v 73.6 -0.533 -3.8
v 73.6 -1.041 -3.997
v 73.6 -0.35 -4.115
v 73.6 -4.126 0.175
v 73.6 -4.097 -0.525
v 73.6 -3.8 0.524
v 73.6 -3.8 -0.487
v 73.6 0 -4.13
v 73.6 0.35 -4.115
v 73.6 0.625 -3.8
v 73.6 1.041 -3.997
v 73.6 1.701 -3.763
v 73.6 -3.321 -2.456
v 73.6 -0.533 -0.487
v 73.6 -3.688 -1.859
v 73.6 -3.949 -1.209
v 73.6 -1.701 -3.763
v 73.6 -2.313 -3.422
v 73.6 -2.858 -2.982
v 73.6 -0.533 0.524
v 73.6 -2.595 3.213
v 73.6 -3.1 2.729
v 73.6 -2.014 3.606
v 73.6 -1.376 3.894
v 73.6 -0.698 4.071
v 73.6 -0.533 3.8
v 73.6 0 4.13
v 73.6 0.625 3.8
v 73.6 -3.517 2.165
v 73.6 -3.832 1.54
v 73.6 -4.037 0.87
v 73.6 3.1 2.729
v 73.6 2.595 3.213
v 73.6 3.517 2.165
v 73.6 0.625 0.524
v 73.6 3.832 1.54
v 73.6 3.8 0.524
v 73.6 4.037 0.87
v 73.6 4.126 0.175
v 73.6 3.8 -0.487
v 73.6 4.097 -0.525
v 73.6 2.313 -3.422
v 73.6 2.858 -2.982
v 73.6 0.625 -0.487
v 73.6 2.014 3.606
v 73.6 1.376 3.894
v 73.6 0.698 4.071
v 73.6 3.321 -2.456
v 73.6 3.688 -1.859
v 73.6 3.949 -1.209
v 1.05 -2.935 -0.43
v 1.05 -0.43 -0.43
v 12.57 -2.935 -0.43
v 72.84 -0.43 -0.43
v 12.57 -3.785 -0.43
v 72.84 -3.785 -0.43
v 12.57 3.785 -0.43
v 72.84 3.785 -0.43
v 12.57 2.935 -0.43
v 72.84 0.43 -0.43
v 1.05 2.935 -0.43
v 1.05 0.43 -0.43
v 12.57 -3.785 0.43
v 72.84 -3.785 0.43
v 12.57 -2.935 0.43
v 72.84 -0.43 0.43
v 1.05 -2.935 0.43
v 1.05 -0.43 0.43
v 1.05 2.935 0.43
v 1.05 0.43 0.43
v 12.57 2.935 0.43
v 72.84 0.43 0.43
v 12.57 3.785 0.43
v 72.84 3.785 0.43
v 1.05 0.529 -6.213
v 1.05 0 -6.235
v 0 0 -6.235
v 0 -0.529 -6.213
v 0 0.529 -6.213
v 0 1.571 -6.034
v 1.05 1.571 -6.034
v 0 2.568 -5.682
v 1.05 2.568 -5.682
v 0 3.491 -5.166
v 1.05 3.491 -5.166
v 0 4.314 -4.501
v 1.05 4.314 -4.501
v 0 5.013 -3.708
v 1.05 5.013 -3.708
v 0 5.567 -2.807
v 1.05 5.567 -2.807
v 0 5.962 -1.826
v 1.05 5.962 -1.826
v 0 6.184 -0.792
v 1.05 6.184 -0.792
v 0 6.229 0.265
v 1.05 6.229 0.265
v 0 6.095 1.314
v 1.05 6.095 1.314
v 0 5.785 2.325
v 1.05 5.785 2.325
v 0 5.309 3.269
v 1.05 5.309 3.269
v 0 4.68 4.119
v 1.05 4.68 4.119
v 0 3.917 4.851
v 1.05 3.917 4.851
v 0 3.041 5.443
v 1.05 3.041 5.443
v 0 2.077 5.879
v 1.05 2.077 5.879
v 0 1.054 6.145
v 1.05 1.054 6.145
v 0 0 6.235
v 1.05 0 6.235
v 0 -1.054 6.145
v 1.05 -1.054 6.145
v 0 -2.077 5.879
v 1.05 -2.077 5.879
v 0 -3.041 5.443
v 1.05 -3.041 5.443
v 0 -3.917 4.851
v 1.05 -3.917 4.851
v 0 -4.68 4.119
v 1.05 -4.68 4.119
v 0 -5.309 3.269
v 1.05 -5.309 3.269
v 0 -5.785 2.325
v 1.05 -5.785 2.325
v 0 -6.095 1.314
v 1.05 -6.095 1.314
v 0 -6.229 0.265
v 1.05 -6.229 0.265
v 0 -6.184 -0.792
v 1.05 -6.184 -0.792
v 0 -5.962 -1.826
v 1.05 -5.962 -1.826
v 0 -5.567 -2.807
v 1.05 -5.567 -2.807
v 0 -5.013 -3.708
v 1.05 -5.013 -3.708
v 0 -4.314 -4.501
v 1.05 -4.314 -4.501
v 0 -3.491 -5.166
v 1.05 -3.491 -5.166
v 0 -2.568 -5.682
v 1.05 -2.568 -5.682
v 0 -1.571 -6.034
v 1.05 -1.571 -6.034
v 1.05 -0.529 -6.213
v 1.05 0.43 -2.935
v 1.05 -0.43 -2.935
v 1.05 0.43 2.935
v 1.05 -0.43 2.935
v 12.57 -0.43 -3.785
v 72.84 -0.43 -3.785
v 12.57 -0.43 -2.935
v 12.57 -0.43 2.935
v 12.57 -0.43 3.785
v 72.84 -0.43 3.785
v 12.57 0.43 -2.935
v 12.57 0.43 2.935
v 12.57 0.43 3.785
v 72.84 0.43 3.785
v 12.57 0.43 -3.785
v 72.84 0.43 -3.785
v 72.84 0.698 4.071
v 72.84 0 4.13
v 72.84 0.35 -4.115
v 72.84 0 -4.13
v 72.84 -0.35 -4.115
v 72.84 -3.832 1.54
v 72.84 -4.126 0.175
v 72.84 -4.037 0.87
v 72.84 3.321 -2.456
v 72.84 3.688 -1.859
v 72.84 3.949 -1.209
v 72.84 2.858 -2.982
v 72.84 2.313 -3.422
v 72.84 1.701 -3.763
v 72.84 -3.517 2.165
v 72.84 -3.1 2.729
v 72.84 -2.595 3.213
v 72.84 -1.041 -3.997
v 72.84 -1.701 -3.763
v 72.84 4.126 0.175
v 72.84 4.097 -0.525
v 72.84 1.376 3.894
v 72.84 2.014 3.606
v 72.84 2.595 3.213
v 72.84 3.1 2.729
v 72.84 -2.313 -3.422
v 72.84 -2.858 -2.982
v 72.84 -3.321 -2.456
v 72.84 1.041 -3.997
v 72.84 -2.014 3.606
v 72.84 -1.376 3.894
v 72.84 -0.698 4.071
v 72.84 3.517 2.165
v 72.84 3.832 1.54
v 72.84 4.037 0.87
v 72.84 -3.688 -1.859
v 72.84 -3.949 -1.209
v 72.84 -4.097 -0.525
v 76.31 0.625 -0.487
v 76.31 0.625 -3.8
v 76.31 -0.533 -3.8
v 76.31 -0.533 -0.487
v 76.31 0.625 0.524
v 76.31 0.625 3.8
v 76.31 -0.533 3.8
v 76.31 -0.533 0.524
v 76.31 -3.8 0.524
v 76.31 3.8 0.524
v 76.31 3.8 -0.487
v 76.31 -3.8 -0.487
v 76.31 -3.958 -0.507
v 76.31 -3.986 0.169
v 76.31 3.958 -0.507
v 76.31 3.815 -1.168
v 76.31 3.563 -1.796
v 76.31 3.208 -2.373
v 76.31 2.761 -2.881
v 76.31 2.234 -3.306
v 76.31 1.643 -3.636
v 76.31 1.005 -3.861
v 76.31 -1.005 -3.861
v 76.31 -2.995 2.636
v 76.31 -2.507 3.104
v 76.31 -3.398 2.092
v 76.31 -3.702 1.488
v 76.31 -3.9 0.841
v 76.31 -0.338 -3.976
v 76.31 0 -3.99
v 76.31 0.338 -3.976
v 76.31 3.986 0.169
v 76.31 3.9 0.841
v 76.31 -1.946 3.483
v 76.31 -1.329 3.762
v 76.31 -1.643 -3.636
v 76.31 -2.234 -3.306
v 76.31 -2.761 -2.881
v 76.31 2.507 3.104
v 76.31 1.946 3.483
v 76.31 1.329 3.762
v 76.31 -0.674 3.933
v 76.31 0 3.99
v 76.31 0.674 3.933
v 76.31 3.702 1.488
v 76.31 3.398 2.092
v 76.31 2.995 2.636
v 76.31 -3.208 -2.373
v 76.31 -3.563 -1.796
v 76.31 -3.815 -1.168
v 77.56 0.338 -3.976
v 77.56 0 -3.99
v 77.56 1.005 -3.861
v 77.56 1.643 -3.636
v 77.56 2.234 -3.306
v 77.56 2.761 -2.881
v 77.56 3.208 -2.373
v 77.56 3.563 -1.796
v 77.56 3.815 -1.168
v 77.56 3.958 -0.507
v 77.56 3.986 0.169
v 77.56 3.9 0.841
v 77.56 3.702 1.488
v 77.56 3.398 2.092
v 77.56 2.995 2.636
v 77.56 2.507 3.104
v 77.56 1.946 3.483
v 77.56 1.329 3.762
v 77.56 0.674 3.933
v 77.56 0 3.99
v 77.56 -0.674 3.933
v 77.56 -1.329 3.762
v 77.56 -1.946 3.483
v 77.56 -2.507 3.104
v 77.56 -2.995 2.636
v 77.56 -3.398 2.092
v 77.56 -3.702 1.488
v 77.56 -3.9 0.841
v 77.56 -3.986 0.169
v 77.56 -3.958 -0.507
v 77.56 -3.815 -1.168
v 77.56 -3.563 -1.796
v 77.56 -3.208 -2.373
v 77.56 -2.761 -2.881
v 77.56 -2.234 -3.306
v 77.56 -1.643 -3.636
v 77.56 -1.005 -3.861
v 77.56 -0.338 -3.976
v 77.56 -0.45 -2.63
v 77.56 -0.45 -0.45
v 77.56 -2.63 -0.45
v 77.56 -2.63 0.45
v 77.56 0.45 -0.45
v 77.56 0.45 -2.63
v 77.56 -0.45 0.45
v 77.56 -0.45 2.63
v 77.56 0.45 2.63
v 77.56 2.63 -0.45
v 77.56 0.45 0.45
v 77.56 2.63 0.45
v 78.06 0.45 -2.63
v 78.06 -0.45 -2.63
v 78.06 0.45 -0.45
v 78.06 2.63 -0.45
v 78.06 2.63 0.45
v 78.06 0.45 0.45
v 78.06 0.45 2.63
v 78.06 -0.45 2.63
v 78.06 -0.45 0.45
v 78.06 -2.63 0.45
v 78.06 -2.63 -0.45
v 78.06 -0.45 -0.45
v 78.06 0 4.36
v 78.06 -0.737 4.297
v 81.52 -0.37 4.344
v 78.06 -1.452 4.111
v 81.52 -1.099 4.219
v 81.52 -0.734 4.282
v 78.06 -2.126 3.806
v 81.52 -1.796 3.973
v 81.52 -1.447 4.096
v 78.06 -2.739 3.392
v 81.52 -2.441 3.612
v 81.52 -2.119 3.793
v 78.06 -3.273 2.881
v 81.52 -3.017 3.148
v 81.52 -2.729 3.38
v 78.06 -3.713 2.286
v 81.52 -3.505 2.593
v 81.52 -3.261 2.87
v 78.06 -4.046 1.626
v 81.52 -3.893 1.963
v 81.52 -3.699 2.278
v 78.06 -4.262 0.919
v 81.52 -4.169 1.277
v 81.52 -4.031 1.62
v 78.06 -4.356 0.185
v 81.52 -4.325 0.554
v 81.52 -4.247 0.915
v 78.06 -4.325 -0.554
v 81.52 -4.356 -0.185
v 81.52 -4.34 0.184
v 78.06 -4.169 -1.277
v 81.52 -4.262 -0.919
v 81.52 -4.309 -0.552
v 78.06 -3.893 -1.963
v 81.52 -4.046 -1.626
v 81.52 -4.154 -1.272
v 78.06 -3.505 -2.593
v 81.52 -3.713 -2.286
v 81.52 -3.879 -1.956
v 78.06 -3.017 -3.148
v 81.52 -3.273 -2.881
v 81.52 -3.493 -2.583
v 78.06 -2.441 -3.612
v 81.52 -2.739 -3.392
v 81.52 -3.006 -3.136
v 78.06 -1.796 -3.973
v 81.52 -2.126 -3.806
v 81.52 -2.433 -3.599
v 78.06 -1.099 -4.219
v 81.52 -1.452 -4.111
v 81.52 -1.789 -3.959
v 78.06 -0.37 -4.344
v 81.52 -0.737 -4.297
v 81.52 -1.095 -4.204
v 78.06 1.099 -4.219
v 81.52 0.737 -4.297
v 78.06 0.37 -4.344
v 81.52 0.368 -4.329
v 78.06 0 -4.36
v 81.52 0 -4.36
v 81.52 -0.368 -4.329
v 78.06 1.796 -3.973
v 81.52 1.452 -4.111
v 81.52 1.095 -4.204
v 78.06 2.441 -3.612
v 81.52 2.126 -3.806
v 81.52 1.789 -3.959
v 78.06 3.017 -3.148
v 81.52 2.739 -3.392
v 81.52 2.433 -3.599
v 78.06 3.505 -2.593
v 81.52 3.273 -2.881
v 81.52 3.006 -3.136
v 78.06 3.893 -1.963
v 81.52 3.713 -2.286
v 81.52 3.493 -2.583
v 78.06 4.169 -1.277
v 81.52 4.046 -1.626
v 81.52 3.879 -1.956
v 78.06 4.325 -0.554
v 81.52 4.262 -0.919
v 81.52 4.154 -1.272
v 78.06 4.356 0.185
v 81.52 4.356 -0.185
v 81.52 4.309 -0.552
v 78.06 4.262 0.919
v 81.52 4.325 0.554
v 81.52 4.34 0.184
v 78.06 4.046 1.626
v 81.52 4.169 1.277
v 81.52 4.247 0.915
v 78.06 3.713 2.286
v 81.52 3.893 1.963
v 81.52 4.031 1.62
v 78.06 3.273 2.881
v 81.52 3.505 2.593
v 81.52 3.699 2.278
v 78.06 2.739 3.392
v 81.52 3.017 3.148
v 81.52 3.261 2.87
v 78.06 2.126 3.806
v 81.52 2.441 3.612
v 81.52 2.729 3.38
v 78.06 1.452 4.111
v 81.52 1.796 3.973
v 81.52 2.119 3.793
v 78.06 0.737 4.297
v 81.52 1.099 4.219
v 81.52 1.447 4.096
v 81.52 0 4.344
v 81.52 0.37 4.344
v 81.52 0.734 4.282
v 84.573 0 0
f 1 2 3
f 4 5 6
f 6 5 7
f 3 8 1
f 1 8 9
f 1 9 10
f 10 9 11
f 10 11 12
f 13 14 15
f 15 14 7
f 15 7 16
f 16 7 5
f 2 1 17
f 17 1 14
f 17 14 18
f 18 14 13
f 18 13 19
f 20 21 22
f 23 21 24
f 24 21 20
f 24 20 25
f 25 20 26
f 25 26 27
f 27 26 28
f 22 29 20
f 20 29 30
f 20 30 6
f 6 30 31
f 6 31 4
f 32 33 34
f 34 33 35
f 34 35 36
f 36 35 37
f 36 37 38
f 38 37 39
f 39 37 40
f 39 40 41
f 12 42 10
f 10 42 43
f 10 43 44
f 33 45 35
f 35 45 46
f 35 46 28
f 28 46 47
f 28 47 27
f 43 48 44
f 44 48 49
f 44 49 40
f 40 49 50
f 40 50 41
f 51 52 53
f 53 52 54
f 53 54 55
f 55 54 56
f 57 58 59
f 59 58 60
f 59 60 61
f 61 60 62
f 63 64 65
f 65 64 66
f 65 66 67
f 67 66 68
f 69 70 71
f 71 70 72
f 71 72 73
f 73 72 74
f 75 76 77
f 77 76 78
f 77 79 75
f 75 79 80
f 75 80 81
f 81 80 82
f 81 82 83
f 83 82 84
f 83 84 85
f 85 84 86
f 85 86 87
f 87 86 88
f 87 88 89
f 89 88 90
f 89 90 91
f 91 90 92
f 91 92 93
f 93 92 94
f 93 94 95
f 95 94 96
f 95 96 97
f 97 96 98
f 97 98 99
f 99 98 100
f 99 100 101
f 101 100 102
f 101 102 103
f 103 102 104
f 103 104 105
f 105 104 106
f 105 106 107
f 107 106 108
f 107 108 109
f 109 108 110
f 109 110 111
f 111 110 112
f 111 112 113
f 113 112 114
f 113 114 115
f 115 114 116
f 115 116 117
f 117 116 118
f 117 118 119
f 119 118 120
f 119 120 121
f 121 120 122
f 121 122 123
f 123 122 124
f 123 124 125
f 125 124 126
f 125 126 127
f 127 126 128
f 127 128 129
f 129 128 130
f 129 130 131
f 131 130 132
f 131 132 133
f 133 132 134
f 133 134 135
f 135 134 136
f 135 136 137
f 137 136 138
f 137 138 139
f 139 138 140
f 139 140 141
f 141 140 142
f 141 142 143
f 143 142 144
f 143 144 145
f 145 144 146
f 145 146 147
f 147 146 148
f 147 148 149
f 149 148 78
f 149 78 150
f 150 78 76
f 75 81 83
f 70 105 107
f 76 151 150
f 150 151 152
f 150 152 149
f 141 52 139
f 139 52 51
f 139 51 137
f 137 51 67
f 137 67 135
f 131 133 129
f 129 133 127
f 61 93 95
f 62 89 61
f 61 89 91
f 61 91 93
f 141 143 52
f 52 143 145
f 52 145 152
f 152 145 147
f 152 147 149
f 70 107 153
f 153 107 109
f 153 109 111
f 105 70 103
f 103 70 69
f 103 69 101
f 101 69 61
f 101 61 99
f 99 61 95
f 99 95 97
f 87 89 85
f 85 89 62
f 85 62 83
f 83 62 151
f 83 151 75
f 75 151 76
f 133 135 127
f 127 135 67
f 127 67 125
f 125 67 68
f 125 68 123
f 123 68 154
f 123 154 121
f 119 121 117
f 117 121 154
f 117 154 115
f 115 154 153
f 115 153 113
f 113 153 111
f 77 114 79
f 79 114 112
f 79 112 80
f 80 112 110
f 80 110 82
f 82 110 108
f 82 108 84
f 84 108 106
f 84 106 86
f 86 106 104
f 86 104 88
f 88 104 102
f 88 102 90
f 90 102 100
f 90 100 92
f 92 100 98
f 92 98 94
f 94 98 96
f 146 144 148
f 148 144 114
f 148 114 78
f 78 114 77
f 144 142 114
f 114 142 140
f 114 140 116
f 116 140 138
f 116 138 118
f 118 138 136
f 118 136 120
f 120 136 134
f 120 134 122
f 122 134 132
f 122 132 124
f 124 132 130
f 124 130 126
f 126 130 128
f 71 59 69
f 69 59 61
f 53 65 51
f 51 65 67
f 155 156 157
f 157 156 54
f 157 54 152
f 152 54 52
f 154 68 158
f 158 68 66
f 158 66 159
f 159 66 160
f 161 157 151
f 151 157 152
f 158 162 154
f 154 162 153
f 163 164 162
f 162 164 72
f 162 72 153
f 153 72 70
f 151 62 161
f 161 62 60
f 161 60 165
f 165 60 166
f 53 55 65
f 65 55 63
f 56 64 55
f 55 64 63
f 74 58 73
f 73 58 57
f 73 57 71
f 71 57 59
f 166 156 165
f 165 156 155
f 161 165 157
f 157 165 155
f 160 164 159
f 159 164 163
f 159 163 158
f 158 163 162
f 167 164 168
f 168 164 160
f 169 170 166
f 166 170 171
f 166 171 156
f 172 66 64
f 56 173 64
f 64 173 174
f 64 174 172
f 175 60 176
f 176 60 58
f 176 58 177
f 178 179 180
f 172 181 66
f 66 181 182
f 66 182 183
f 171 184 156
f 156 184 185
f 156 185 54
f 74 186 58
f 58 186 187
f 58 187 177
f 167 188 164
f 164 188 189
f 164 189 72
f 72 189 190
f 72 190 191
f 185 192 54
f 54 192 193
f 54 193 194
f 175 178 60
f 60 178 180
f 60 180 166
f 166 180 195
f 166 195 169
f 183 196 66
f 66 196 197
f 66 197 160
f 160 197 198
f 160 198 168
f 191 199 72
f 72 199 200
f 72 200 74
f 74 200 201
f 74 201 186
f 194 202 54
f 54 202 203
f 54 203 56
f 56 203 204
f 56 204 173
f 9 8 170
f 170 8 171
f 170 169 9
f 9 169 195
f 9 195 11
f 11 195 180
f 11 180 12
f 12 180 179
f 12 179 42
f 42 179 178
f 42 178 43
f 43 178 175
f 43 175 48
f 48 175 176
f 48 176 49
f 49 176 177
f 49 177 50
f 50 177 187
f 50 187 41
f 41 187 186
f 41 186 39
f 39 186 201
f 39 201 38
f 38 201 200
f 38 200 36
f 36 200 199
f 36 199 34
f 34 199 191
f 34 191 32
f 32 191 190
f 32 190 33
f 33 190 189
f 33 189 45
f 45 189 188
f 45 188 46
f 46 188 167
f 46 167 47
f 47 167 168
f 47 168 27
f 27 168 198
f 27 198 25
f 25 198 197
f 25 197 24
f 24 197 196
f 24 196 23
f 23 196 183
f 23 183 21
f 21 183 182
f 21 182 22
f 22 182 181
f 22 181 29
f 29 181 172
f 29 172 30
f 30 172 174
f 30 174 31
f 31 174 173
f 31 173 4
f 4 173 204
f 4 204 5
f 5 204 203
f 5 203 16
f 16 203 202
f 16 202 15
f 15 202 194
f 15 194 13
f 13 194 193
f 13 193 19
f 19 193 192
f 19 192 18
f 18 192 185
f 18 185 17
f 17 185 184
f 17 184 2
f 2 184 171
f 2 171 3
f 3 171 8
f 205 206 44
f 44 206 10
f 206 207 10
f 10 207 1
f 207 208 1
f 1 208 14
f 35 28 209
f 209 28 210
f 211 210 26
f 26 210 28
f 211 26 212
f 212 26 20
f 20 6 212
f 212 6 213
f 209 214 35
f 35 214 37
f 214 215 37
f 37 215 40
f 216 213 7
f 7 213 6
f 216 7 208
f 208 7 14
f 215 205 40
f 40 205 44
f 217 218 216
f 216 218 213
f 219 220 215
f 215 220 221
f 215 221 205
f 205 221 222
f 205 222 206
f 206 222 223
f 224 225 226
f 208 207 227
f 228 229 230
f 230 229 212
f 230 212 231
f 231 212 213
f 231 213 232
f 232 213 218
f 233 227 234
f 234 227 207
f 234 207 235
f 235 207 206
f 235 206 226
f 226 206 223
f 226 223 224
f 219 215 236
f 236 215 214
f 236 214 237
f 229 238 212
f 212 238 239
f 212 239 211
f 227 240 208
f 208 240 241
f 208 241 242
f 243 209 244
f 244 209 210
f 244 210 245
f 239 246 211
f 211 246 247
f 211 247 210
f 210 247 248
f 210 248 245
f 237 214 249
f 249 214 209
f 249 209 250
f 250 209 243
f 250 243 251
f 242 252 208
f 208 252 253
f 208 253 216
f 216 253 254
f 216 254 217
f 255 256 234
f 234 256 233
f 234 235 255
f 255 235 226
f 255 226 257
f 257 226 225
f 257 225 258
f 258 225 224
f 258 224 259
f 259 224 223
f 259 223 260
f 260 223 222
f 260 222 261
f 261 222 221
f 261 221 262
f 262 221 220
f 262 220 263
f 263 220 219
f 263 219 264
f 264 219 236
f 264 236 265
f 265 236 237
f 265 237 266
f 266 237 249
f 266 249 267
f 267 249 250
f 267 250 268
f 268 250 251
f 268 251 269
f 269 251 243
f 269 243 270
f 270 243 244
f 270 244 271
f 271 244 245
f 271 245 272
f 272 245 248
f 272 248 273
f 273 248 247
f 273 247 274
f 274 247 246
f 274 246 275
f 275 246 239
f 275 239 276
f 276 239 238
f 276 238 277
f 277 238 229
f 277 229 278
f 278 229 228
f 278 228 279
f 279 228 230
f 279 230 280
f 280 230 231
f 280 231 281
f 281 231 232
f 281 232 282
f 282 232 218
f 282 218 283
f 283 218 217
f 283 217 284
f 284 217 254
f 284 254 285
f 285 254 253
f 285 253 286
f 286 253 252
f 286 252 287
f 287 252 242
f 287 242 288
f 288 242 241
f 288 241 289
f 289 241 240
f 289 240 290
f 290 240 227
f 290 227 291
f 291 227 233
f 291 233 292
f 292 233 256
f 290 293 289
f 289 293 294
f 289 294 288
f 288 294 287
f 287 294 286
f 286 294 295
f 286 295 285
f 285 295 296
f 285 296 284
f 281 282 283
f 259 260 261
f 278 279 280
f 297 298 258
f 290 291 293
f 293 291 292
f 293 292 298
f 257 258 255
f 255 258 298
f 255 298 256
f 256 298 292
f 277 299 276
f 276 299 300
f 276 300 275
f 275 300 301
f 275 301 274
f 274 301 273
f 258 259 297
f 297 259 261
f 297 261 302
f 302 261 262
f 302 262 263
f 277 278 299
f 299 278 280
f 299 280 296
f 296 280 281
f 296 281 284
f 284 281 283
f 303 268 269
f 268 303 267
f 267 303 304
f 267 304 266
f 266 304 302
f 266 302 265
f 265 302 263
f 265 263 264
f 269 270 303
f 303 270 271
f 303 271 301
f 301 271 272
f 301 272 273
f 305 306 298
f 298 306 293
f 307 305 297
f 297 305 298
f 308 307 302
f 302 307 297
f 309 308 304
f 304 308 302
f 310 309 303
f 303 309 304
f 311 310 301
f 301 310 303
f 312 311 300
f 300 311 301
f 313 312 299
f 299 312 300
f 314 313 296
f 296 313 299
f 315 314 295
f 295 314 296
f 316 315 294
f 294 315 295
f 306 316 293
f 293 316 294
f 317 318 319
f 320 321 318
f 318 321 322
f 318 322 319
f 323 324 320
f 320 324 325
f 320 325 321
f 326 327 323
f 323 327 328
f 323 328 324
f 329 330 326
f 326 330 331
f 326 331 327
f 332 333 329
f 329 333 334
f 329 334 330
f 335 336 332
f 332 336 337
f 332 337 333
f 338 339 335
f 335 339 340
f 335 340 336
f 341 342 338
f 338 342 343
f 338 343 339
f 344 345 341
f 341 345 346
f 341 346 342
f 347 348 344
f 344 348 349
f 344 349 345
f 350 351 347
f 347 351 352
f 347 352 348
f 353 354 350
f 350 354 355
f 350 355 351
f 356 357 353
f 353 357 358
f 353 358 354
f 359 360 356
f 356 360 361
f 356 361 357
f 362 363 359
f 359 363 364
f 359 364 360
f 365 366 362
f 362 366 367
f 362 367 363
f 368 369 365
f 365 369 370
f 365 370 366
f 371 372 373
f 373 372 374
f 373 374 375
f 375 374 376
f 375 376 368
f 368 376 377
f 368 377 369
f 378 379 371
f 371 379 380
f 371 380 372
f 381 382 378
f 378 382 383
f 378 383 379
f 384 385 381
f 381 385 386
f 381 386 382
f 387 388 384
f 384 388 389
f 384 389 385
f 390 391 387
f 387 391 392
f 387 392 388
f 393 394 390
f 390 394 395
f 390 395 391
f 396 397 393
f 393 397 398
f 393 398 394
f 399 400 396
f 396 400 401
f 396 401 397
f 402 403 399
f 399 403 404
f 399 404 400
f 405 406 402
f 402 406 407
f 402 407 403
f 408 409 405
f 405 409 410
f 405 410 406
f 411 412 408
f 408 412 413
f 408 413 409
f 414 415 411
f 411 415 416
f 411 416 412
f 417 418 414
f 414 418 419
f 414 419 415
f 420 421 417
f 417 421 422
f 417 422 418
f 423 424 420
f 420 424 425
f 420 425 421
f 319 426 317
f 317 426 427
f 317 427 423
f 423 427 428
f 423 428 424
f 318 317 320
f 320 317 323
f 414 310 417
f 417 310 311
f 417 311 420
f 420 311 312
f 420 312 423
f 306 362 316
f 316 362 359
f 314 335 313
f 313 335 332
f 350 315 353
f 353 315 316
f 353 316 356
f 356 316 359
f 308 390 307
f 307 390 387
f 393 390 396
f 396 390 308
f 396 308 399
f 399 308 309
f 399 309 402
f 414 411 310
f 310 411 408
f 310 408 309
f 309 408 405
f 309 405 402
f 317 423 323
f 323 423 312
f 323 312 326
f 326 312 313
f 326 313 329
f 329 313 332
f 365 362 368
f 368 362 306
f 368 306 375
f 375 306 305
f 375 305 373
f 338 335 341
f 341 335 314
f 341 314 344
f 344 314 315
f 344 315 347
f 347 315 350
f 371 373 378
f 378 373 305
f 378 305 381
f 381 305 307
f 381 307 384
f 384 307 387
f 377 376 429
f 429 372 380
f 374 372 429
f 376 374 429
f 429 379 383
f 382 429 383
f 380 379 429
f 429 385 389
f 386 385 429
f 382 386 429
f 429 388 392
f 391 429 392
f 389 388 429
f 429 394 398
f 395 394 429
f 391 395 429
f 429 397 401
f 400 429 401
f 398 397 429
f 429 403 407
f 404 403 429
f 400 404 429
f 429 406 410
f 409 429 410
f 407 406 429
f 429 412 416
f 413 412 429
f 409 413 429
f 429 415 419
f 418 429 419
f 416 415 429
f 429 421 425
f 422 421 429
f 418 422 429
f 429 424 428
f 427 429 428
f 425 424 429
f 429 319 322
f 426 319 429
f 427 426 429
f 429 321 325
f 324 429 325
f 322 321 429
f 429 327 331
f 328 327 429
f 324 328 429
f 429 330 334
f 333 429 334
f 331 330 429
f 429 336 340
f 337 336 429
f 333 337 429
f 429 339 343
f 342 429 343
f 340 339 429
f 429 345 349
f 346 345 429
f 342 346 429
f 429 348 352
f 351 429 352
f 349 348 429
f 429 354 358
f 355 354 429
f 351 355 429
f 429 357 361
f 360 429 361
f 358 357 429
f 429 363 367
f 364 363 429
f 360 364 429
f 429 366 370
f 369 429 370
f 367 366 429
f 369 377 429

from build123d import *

# Parameters (mm, degrees)
SKETCH1_R            = 6.235
BOSS_EXTRUDE1_DEPTH  = 1.05
SKETCH2_W            = 5.87
SKETCH2_H            = 0.86
SKETCH2_W_2          = 0.86
SKETCH2_H_2          = 5.87
BOSS_EXTRUDE5_DEPTH  = 11.52
SKETCH10_W           = 0.86
SKETCH10_H           = 7.57
BOSS_EXTRUDE6_DEPTH  = 60.27
SKETCH11_W           = 7.57
SKETCH11_H           = 0.86
BOSS_EXTRUDE8_DEPTH  = 60.27
SKETCH15_R           = 4.13
BOSS_EXTRUDE9_DEPTH  = 0.76
SKETCH16_W           = 1.010303068
SKETCH16_H           = 7.6
SKETCH16_W_2         = 7.6
SKETCH16_H_2         = 1.157256242
BOSS_EXTRUDE10_DEPTH = 2.71
SKETCH17_R           = 3.99
BOSS_EXTRUDE11_DEPTH = 1.25
SKETCH18_W           = 2.18
SKETCH18_H           = 0.9
SKETCH18_W_2         = 0.9
SKETCH18_H_2         = 2.18
BOSS_EXTRUDE13_DEPTH = 0.5
SKETCH19_R           = 4.36
BOSS_EXTRUDE14_DEPTH = 3.46


with BuildPart() as part:
    # Sketch1 → Boss-Extrude1 (new body)
    with BuildSketch(Plane(origin=(0, 0, 0), x_dir=(0, 0, -1), z_dir=(1, 0, 0))):
        Circle(SKETCH1_R)
    extrude(amount=BOSS_EXTRUDE1_DEPTH)

    # Sketch2 → Boss-Extrude5 (add)
    with BuildSketch(Plane(origin=(1.05, 0, 0), x_dir=(0, 0, -1), z_dir=(1, 0, 0))):
        Rectangle(SKETCH2_W, SKETCH2_H)
        Rectangle(SKETCH2_W_2, SKETCH2_H_2)
    extrude(amount=BOSS_EXTRUDE5_DEPTH)

    # Sketch10 → Boss-Extrude6 (add)
    with BuildSketch(Plane(origin=(12.57, 0, 0), x_dir=(0, 0, -1), z_dir=(1, 0, 0))):
        Rectangle(SKETCH10_W, SKETCH10_H)
    extrude(amount=BOSS_EXTRUDE6_DEPTH)

    # Sketch11 → Boss-Extrude8 (add)
    with BuildSketch(Plane(origin=(12.57, 0, 0), x_dir=(0, 0, -1), z_dir=(1, 0, 0))):
        Rectangle(SKETCH11_W, SKETCH11_H)
    extrude(amount=BOSS_EXTRUDE8_DEPTH)

    # Sketch15 → Boss-Extrude9 (add)
    with BuildSketch(Plane(origin=(72.84, 0, 0), x_dir=(0, 0, -1), z_dir=(1, 0, 0))):
        Circle(SKETCH15_R)
    extrude(amount=BOSS_EXTRUDE9_DEPTH)

    # Sketch16 → Boss-Extrude10 (add)
    with BuildSketch(Plane(origin=(73.6, 0, 0), x_dir=(0, 0, -1), z_dir=(1, 0, 0))):
        with Locations((-0.018369147, 0)):
            Rectangle(SKETCH16_W, SKETCH16_H)
        with Locations((0, 0.045922867)):
            Rectangle(SKETCH16_W_2, SKETCH16_H_2)
    extrude(amount=BOSS_EXTRUDE10_DEPTH)

    # Sketch17 → Boss-Extrude11 (add)
    with BuildSketch(Plane(origin=(76.31, 0, 0), x_dir=(0, 0, -1), z_dir=(1, 0, 0))):
        Circle(SKETCH17_R)
    extrude(amount=BOSS_EXTRUDE11_DEPTH)

    # Sketch18 → Boss-Extrude13 (add)
    with BuildSketch(Plane(origin=(77.56, 0, 0), x_dir=(0, 0, -1), z_dir=(1, 0, 0))):
        with Locations((1.54, 0)):
            Rectangle(SKETCH18_W, SKETCH18_H)
        with Locations((0, 1.54)):
            Rectangle(SKETCH18_W_2, SKETCH18_H_2)
        with Locations((-1.54, 0)):
            Rectangle(SKETCH18_W, SKETCH18_H)
        Rectangle(SKETCH18_W_2, SKETCH18_H)
        with Locations((0, -1.54)):
            Rectangle(SKETCH18_W_2, SKETCH18_H_2)
    extrude(amount=BOSS_EXTRUDE13_DEPTH)

    # Sketch19 → Boss-Extrude14 (add)
    with BuildSketch(Plane(origin=(78.06, 0, 0), x_dir=(0, 0, -1), z_dir=(1, 0, 0))):
        Circle(SKETCH19_R)
    extrude(amount=BOSS_EXTRUDE14_DEPTH)

    # Boss-Extrude15 cone 1 section (through the dimple's axis) → Boss-Extrude15 (revolve)
    with BuildSketch(Plane(origin=(81.52, 0, 0), x_dir=(0, 0, 1), z_dir=(0, 1, 0))):
        Polygon((0, 0), (4.36, 0), (0, 3.052904867), align=None)
    revolve(axis=Axis((81.52, 0, 0), (1, 0, 0)))


solid = part.part
